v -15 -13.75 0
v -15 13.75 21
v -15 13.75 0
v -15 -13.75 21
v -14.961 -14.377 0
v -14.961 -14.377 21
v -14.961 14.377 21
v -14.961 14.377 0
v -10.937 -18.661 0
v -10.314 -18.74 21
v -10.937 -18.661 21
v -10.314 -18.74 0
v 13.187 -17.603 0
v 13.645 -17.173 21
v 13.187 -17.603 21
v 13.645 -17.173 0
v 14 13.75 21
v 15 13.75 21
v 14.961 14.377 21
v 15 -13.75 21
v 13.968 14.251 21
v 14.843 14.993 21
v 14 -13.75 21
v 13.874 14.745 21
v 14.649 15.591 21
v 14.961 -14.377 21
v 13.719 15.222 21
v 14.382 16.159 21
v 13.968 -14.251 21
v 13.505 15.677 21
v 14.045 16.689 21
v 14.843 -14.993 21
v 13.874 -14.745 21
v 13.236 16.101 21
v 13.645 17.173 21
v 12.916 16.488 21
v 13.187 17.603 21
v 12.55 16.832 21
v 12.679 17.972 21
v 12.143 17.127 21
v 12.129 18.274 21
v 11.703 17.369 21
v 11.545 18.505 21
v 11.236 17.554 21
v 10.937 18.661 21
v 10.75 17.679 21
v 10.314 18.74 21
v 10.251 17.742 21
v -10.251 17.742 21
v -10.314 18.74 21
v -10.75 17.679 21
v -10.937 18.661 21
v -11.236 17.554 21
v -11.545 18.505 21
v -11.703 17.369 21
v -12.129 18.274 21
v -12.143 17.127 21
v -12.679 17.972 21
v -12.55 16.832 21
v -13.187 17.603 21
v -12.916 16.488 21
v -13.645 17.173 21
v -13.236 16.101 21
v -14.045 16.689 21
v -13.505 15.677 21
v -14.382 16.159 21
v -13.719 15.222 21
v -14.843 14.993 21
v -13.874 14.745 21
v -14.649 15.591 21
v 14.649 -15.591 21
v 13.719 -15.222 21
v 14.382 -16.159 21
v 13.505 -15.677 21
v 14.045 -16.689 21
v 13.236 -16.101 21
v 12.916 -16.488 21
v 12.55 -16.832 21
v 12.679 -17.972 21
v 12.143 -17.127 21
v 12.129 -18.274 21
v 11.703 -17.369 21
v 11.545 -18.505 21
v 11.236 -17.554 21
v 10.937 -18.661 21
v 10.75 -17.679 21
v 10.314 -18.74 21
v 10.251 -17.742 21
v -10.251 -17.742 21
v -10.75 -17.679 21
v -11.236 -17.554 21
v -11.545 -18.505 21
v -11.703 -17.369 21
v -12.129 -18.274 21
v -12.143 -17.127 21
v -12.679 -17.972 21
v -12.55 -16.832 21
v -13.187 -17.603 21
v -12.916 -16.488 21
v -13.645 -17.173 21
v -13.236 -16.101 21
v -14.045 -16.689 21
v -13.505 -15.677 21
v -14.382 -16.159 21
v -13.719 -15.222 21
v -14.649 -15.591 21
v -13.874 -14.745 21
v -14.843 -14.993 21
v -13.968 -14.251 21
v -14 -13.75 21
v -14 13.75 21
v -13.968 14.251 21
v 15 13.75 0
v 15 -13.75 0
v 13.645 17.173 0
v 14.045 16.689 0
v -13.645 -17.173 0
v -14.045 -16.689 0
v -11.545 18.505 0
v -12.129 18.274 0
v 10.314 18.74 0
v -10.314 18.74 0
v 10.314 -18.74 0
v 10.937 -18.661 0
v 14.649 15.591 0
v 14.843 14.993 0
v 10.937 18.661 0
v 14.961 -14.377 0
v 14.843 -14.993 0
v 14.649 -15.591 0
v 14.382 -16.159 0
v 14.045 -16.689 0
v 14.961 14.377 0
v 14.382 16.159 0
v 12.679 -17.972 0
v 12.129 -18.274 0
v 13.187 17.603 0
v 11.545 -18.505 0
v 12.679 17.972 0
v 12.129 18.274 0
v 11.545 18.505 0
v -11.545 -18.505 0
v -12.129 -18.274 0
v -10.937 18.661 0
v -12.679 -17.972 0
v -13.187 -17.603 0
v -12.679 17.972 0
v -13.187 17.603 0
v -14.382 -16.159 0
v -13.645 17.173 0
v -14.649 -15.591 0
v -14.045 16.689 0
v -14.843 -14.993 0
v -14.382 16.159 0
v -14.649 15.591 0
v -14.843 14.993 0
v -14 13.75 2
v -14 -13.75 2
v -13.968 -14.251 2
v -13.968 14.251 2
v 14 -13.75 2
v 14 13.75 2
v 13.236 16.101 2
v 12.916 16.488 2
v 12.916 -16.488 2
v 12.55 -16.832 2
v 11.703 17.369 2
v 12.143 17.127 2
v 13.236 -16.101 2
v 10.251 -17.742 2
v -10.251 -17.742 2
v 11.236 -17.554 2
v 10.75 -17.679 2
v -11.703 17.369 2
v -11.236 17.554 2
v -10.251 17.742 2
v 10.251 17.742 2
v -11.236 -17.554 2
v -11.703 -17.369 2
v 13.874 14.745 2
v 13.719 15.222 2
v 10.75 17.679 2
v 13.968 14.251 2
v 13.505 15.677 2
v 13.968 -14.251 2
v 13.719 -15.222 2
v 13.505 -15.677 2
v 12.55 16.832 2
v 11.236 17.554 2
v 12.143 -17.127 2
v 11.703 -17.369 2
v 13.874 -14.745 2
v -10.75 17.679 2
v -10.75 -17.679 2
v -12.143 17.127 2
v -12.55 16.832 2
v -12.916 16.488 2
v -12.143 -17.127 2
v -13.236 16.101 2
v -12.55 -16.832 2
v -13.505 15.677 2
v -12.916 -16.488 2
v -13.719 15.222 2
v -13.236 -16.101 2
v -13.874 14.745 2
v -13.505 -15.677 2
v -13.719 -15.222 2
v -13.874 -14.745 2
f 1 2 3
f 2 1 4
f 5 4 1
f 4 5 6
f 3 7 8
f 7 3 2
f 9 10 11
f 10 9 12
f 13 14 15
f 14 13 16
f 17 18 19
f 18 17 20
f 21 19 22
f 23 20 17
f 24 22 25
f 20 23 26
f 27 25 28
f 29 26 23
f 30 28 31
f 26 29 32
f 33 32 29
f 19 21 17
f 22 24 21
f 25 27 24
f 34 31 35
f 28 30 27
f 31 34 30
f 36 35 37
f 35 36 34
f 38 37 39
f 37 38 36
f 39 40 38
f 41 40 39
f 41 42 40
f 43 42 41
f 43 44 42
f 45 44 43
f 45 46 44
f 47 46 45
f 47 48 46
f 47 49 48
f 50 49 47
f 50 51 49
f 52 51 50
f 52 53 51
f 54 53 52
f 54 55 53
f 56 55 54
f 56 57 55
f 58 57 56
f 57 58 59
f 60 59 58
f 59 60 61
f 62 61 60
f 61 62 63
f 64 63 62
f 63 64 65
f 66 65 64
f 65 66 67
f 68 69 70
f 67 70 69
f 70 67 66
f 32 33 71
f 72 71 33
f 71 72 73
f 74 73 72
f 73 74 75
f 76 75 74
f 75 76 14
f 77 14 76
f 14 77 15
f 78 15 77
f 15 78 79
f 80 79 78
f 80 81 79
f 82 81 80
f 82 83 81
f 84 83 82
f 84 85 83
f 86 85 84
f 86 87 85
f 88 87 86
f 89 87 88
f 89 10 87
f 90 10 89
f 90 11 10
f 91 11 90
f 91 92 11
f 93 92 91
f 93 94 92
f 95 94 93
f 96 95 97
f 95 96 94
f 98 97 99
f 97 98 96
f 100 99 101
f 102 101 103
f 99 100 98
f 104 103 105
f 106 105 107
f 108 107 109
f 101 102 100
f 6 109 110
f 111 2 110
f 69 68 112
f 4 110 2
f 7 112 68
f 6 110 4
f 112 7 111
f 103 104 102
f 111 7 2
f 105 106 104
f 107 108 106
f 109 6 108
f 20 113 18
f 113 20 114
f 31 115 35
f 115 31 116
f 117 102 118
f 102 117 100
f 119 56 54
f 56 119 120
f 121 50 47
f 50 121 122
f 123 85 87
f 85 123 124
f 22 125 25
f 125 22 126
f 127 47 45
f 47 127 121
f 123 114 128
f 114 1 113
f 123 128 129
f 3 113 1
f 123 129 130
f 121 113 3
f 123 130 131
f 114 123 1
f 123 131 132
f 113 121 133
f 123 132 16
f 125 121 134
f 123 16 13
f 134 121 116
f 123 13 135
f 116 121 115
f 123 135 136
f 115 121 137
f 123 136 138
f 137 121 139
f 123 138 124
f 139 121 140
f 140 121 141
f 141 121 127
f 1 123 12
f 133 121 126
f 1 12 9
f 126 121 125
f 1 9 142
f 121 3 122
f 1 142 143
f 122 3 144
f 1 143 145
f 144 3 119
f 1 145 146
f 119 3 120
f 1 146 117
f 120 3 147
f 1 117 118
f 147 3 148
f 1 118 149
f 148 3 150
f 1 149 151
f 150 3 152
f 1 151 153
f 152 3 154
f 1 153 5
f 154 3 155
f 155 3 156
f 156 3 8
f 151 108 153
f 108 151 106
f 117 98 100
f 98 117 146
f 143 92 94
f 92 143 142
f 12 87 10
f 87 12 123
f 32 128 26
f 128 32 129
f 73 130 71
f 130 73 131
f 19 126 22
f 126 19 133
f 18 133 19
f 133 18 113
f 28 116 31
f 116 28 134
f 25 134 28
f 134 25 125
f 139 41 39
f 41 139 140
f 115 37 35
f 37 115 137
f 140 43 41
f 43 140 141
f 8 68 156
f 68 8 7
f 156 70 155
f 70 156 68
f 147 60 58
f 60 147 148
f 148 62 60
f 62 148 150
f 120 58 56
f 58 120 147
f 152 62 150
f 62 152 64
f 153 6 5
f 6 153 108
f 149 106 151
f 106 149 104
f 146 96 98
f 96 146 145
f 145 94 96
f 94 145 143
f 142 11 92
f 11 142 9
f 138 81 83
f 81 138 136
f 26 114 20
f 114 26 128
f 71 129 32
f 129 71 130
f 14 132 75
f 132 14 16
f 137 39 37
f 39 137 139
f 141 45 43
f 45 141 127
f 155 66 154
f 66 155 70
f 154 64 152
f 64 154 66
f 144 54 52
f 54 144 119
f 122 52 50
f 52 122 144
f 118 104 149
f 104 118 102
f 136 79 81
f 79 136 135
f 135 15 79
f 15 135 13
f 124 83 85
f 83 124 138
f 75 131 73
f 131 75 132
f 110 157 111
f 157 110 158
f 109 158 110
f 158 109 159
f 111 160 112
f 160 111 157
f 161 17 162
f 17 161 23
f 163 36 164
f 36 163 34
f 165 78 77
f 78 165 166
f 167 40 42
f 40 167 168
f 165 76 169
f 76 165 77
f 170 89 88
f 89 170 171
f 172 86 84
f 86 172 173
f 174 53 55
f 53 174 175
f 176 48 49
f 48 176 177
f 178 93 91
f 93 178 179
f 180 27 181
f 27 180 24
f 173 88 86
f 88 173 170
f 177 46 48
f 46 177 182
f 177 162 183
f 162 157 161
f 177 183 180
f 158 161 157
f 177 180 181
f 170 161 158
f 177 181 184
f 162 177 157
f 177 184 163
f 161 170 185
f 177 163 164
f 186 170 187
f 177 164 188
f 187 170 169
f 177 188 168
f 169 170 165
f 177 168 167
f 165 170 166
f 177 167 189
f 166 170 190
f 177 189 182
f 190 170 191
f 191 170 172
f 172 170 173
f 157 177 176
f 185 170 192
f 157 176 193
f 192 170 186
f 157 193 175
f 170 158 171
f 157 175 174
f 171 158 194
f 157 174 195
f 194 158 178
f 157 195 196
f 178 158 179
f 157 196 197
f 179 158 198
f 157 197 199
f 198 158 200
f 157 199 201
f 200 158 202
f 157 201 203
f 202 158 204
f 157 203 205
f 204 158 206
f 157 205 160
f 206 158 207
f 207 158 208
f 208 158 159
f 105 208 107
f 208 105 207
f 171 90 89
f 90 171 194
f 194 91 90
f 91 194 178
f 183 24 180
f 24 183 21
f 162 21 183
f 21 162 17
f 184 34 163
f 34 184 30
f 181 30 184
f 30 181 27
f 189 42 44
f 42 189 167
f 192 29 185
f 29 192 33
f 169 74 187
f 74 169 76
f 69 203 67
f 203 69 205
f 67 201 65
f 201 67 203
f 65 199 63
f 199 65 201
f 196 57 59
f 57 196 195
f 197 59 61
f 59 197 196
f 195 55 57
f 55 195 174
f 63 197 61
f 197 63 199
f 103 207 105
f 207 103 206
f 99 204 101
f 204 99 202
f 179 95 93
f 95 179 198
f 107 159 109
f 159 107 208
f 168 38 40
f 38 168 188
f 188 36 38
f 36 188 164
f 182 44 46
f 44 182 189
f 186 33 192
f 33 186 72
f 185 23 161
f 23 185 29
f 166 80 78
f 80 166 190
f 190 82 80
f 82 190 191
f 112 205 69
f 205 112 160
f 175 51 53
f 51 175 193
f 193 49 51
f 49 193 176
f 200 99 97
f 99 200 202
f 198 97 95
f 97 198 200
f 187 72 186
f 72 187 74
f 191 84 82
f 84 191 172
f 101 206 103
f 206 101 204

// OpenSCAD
$fn = 50;


difference() {
	union() {
		hull() {
			translate(v = [-10.0000000000, 13.7500000000, 0]) {
				cylinder(h = 21, r = 5);
			}
			translate(v = [10.0000000000, 13.7500000000, 0]) {
				cylinder(h = 21, r = 5);
			}
			translate(v = [-10.0000000000, -13.7500000000, 0]) {
				cylinder(h = 21, r = 5);
			}
			translate(v = [10.0000000000, -13.7500000000, 0]) {
				cylinder(h = 21, r = 5);
			}
		}
	}
	union() {
		translate(v = [0, 0, 2]) {
			hull() {
				translate(v = [-10.0000000000, 13.7500000000, 0]) {
					cylinder(h = 19, r = 4);
				}
				translate(v = [10.0000000000, 13.7500000000, 0]) {
					cylinder(h = 19, r = 4);
				}
				translate(v = [-10.0000000000, -13.7500000000, 0]) {
					cylinder(h = 19, r = 4);
				}
				translate(v = [10.0000000000, -13.7500000000, 0]) {
					cylinder(h = 19, r = 4);
				}
			}
		}
	}
}
